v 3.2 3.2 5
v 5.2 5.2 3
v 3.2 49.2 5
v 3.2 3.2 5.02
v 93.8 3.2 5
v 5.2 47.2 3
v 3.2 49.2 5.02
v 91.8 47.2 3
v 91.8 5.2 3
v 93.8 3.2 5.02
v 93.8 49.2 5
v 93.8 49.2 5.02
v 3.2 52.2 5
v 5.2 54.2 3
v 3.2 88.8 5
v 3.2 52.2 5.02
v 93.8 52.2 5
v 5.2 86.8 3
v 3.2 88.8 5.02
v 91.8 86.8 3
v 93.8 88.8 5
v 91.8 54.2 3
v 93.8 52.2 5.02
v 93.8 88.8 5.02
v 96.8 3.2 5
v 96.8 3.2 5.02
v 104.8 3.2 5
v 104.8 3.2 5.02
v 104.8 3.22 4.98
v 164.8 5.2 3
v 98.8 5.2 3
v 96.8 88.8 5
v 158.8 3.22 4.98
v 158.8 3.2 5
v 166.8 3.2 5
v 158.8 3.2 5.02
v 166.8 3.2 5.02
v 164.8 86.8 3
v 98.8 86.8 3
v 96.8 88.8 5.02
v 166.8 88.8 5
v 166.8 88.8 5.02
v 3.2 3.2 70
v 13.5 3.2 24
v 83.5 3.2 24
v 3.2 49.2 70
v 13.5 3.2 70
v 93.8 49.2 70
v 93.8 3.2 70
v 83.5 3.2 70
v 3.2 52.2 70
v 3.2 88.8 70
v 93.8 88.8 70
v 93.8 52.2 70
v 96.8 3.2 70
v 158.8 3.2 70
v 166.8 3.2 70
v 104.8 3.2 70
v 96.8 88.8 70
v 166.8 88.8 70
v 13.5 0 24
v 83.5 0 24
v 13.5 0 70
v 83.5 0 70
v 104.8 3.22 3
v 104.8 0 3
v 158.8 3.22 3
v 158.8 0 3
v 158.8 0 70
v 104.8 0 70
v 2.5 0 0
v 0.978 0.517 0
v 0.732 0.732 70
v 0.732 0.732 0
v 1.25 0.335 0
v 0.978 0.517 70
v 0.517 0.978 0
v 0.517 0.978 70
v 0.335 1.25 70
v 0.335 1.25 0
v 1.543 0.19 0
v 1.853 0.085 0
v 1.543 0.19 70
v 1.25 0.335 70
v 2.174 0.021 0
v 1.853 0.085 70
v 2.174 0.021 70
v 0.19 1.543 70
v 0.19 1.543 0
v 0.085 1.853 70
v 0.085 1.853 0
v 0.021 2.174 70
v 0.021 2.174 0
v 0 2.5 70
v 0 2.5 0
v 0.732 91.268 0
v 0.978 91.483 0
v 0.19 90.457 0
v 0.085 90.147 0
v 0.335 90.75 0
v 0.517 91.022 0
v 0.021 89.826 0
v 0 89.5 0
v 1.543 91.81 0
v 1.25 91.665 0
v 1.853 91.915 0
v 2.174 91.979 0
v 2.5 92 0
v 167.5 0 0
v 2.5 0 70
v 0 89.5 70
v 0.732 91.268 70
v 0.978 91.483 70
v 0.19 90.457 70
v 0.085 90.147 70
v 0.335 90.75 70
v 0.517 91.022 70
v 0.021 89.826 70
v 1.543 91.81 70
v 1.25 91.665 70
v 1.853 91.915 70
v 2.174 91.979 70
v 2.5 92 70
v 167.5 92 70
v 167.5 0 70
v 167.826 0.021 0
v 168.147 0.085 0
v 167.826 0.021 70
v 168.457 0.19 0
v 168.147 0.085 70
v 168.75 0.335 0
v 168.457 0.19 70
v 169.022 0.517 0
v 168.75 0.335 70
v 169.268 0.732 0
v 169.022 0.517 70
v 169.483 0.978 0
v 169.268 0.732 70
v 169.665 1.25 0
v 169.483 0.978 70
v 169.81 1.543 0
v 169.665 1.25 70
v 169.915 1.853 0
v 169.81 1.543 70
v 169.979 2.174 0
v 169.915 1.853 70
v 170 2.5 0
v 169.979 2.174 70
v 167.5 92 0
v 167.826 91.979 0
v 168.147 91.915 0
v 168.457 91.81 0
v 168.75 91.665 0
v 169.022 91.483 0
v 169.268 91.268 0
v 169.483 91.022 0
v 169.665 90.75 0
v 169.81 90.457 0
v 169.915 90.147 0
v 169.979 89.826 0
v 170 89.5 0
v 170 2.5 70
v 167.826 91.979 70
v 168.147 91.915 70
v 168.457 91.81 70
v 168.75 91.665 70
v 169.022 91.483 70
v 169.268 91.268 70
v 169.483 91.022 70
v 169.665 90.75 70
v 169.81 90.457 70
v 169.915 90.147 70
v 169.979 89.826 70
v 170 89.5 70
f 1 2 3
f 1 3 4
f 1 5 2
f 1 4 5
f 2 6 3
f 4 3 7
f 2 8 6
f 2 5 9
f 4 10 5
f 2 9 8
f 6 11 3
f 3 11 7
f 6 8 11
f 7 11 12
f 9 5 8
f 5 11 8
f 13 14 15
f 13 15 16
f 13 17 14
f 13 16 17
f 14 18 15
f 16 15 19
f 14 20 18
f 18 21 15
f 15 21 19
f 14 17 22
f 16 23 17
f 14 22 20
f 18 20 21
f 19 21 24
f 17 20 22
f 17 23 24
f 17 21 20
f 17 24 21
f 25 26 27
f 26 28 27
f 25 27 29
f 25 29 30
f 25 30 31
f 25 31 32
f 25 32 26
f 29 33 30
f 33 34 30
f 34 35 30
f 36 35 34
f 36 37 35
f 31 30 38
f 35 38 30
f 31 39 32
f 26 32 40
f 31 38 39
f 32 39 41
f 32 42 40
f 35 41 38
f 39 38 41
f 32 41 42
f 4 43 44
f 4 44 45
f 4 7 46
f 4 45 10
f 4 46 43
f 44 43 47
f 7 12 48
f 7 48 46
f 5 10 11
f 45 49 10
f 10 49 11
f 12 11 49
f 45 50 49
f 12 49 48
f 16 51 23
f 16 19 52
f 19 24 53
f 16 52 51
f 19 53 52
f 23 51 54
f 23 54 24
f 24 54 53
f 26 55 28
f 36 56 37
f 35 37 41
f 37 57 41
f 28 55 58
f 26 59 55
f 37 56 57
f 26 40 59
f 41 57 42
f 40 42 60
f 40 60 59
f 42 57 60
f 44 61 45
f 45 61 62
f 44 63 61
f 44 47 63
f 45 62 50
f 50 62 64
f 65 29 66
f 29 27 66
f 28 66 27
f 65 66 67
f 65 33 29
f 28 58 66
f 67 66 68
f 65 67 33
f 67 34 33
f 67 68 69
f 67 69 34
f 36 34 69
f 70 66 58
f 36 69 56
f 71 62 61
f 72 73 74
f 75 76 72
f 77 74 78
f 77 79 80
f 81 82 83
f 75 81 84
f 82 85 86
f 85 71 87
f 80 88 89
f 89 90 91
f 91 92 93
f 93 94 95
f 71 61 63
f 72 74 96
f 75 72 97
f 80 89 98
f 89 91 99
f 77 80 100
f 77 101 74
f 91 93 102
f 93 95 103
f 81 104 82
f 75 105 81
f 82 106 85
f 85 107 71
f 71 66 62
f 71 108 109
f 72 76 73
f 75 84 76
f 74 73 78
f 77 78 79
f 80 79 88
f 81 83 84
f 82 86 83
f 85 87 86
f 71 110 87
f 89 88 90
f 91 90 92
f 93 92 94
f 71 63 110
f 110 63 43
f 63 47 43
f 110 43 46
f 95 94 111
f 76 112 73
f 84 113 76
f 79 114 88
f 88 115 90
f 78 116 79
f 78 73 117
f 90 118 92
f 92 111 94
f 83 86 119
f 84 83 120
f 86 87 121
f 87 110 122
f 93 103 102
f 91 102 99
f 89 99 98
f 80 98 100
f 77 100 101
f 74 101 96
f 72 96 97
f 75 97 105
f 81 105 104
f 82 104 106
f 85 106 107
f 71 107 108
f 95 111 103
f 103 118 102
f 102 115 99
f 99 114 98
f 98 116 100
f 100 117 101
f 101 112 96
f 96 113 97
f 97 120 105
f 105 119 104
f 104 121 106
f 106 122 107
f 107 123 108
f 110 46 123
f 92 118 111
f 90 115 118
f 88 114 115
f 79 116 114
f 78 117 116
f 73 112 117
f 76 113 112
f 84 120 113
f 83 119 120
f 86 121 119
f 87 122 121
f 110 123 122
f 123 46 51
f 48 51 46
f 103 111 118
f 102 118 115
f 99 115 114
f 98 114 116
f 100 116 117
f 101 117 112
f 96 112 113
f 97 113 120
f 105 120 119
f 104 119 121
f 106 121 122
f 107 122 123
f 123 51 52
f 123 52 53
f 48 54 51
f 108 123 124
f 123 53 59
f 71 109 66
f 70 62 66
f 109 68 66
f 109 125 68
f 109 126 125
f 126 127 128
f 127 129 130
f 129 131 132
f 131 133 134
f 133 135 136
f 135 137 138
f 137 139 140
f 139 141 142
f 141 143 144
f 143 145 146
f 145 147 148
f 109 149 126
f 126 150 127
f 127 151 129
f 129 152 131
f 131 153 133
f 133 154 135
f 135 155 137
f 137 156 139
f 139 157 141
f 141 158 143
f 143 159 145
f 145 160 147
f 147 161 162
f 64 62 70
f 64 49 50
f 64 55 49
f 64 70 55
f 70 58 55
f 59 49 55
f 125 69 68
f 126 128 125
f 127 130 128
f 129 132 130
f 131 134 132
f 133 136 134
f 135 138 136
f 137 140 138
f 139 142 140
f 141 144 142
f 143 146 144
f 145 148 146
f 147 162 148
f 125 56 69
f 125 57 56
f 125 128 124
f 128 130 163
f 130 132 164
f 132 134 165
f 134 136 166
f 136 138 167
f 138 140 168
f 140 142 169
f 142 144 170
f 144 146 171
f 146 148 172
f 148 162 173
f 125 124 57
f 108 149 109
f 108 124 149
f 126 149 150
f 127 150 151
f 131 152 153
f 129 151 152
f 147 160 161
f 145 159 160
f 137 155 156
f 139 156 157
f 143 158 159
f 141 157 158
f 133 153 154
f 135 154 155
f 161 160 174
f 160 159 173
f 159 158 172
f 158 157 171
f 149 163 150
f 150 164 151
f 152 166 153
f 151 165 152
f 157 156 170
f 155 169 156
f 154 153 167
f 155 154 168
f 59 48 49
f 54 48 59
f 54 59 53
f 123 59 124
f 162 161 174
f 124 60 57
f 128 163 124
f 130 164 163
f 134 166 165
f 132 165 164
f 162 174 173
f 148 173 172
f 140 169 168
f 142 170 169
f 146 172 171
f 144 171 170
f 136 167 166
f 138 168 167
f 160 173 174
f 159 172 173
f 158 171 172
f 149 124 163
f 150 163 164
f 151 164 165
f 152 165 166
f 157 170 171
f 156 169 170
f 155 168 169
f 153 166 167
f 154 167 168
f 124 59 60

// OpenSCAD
// =============================================================================
// COLD SNAP DESK CADDY - REVERSED LAYOUT
// Layout:
//   - Left-front bay: Sized for toploaders/sleeves with a mid-height retaining lip
//   - Left-rear bay: Full-height slot for semi-rigids
//   - Right bay: Full-depth slot for penny sleeves with a floor-level cutout
// =============================================================================

$fn = 48;
EPS = 0.02;

// --- Primary Dimensions ---
BOX_W = 170.0; // Expanded from 150.0 to clear both widths comfortably
BOX_D = 92.0; // Overall depth (Y)
BOX_H = 70.0; // Rear/side wall height (Z)

WALL_T = 3.2; // Exterior perimeter wall thickness
DIVIDER_T = 3.0; // Internal divider thickness
FLOOR_T = 3.0; // Bottom floor thickness
OUTER_R = 2.5; // Exterior corner fillet radius

// --- Calibrated Compartment Widths & Depths ---
RIGHT_BAY_W = 70.0; // Sized for 67mm penny sleeves (+3.0mm clearance)
LEFT_FRONT_D = 46.0; // Front-to-back depth for toploaders (~20-22 toploaders)

// Left bay width derives automatically:
// 170 - (2 * 3.2) - 3.0 - 70.0 = 90.6mm
// Gives +5.6mm clearance for 85mm semi-rigids, +14.6mm for 76mm toploaders

// --- Front Cutout Geometry (Aligned to New Widths) ---
LEFT_LIP_H = 24.0;
LEFT_NOTCH_W = 70.0; // Widened opening for comfortable finger grab on toploaders

RIGHT_NOTCH_W = 54.0; // Widened floor-level scoop for penny sleeves
RIGHT_POST_W = 8.0;

// --- Internal Derived Variables ---
AVAIL_X = BOX_W - (2 * WALL_T) - DIVIDER_T;
LEFT_BAY_W = AVAIL_X - RIGHT_BAY_W;

AVAIL_Y = BOX_D - (2 * WALL_T);
RIGHT_BAY_D = AVAIL_Y;
LEFT_REAR_D = AVAIL_Y - LEFT_FRONT_D - DIVIDER_T;

// Sub-Module: 2D Rounded Perimeter Base
module rounded_rect_2d(width, depth, radius) {
  hull() {
    for (dx = [radius, width - radius]) {
      for (dy = [radius, depth - radius]) {
        translate([dx, dy]) circle(r=radius);
      }
    }
  }
}

// Sub-Module: Chamfered Internal Cavity Cutter
module pocket_cutter(width, depth, height, chamfer = 2.0) {
  translate([0, 0, chamfer])
    cube([width, depth, height - chamfer + 2 * EPS]);

  hull() {
    translate([chamfer, chamfer, 0])
      cube([width - 2 * chamfer, depth - 2 * chamfer, EPS]);
    translate([0, 0, chamfer])
      cube([width, depth, EPS]);
  }
}

// Sub-Module: Front Face Pass-Through Windows
module front_cutouts() {
  // 1. Left Front Bay Window (stops at retaining lip)
  translate([WALL_T + (LEFT_BAY_W - LEFT_NOTCH_W) / 2, -EPS, LEFT_LIP_H])
    cube([LEFT_NOTCH_W, WALL_T + 2 * EPS, BOX_H]);

  // 2. Right Bay Window (cuts down to floor plate)
  x_right_start = WALL_T + LEFT_BAY_W + DIVIDER_T;
  translate([x_right_start + (RIGHT_BAY_W - RIGHT_NOTCH_W - RIGHT_POST_W), -EPS, FLOOR_T])
    cube([RIGHT_NOTCH_W, WALL_T + 2 * EPS, BOX_H]);
}

// Top-Level Solid Assembly
module cold_snap_desk_caddy() {
  difference() {
    // Outer Solid Shell
    linear_extrude(height=BOX_H)
      rounded_rect_2d(BOX_W, BOX_D, OUTER_R);

    // 1. Left Front Bay Cavity (Toploaders)
    translate([WALL_T, WALL_T, FLOOR_T])
      pocket_cutter(LEFT_BAY_W, LEFT_FRONT_D, BOX_H - FLOOR_T);

    // 2. Left Rear Bay Cavity (Semi-Rigids)
    y_left_rear = WALL_T + LEFT_FRONT_D + DIVIDER_T;
    translate([WALL_T, y_left_rear, FLOOR_T])
      pocket_cutter(LEFT_BAY_W, LEFT_REAR_D, BOX_H - FLOOR_T);

    // 3. Right Bay Cavity (Full-depth for Penny Sleeves)
    x_right = WALL_T + LEFT_BAY_W + DIVIDER_T;
    translate([x_right, WALL_T, FLOOR_T])
      pocket_cutter(RIGHT_BAY_W, RIGHT_BAY_D, BOX_H - FLOOR_T);

    // 4. Front Face Cutouts
    front_cutouts();
  }
}

cold_snap_desk_caddy();
